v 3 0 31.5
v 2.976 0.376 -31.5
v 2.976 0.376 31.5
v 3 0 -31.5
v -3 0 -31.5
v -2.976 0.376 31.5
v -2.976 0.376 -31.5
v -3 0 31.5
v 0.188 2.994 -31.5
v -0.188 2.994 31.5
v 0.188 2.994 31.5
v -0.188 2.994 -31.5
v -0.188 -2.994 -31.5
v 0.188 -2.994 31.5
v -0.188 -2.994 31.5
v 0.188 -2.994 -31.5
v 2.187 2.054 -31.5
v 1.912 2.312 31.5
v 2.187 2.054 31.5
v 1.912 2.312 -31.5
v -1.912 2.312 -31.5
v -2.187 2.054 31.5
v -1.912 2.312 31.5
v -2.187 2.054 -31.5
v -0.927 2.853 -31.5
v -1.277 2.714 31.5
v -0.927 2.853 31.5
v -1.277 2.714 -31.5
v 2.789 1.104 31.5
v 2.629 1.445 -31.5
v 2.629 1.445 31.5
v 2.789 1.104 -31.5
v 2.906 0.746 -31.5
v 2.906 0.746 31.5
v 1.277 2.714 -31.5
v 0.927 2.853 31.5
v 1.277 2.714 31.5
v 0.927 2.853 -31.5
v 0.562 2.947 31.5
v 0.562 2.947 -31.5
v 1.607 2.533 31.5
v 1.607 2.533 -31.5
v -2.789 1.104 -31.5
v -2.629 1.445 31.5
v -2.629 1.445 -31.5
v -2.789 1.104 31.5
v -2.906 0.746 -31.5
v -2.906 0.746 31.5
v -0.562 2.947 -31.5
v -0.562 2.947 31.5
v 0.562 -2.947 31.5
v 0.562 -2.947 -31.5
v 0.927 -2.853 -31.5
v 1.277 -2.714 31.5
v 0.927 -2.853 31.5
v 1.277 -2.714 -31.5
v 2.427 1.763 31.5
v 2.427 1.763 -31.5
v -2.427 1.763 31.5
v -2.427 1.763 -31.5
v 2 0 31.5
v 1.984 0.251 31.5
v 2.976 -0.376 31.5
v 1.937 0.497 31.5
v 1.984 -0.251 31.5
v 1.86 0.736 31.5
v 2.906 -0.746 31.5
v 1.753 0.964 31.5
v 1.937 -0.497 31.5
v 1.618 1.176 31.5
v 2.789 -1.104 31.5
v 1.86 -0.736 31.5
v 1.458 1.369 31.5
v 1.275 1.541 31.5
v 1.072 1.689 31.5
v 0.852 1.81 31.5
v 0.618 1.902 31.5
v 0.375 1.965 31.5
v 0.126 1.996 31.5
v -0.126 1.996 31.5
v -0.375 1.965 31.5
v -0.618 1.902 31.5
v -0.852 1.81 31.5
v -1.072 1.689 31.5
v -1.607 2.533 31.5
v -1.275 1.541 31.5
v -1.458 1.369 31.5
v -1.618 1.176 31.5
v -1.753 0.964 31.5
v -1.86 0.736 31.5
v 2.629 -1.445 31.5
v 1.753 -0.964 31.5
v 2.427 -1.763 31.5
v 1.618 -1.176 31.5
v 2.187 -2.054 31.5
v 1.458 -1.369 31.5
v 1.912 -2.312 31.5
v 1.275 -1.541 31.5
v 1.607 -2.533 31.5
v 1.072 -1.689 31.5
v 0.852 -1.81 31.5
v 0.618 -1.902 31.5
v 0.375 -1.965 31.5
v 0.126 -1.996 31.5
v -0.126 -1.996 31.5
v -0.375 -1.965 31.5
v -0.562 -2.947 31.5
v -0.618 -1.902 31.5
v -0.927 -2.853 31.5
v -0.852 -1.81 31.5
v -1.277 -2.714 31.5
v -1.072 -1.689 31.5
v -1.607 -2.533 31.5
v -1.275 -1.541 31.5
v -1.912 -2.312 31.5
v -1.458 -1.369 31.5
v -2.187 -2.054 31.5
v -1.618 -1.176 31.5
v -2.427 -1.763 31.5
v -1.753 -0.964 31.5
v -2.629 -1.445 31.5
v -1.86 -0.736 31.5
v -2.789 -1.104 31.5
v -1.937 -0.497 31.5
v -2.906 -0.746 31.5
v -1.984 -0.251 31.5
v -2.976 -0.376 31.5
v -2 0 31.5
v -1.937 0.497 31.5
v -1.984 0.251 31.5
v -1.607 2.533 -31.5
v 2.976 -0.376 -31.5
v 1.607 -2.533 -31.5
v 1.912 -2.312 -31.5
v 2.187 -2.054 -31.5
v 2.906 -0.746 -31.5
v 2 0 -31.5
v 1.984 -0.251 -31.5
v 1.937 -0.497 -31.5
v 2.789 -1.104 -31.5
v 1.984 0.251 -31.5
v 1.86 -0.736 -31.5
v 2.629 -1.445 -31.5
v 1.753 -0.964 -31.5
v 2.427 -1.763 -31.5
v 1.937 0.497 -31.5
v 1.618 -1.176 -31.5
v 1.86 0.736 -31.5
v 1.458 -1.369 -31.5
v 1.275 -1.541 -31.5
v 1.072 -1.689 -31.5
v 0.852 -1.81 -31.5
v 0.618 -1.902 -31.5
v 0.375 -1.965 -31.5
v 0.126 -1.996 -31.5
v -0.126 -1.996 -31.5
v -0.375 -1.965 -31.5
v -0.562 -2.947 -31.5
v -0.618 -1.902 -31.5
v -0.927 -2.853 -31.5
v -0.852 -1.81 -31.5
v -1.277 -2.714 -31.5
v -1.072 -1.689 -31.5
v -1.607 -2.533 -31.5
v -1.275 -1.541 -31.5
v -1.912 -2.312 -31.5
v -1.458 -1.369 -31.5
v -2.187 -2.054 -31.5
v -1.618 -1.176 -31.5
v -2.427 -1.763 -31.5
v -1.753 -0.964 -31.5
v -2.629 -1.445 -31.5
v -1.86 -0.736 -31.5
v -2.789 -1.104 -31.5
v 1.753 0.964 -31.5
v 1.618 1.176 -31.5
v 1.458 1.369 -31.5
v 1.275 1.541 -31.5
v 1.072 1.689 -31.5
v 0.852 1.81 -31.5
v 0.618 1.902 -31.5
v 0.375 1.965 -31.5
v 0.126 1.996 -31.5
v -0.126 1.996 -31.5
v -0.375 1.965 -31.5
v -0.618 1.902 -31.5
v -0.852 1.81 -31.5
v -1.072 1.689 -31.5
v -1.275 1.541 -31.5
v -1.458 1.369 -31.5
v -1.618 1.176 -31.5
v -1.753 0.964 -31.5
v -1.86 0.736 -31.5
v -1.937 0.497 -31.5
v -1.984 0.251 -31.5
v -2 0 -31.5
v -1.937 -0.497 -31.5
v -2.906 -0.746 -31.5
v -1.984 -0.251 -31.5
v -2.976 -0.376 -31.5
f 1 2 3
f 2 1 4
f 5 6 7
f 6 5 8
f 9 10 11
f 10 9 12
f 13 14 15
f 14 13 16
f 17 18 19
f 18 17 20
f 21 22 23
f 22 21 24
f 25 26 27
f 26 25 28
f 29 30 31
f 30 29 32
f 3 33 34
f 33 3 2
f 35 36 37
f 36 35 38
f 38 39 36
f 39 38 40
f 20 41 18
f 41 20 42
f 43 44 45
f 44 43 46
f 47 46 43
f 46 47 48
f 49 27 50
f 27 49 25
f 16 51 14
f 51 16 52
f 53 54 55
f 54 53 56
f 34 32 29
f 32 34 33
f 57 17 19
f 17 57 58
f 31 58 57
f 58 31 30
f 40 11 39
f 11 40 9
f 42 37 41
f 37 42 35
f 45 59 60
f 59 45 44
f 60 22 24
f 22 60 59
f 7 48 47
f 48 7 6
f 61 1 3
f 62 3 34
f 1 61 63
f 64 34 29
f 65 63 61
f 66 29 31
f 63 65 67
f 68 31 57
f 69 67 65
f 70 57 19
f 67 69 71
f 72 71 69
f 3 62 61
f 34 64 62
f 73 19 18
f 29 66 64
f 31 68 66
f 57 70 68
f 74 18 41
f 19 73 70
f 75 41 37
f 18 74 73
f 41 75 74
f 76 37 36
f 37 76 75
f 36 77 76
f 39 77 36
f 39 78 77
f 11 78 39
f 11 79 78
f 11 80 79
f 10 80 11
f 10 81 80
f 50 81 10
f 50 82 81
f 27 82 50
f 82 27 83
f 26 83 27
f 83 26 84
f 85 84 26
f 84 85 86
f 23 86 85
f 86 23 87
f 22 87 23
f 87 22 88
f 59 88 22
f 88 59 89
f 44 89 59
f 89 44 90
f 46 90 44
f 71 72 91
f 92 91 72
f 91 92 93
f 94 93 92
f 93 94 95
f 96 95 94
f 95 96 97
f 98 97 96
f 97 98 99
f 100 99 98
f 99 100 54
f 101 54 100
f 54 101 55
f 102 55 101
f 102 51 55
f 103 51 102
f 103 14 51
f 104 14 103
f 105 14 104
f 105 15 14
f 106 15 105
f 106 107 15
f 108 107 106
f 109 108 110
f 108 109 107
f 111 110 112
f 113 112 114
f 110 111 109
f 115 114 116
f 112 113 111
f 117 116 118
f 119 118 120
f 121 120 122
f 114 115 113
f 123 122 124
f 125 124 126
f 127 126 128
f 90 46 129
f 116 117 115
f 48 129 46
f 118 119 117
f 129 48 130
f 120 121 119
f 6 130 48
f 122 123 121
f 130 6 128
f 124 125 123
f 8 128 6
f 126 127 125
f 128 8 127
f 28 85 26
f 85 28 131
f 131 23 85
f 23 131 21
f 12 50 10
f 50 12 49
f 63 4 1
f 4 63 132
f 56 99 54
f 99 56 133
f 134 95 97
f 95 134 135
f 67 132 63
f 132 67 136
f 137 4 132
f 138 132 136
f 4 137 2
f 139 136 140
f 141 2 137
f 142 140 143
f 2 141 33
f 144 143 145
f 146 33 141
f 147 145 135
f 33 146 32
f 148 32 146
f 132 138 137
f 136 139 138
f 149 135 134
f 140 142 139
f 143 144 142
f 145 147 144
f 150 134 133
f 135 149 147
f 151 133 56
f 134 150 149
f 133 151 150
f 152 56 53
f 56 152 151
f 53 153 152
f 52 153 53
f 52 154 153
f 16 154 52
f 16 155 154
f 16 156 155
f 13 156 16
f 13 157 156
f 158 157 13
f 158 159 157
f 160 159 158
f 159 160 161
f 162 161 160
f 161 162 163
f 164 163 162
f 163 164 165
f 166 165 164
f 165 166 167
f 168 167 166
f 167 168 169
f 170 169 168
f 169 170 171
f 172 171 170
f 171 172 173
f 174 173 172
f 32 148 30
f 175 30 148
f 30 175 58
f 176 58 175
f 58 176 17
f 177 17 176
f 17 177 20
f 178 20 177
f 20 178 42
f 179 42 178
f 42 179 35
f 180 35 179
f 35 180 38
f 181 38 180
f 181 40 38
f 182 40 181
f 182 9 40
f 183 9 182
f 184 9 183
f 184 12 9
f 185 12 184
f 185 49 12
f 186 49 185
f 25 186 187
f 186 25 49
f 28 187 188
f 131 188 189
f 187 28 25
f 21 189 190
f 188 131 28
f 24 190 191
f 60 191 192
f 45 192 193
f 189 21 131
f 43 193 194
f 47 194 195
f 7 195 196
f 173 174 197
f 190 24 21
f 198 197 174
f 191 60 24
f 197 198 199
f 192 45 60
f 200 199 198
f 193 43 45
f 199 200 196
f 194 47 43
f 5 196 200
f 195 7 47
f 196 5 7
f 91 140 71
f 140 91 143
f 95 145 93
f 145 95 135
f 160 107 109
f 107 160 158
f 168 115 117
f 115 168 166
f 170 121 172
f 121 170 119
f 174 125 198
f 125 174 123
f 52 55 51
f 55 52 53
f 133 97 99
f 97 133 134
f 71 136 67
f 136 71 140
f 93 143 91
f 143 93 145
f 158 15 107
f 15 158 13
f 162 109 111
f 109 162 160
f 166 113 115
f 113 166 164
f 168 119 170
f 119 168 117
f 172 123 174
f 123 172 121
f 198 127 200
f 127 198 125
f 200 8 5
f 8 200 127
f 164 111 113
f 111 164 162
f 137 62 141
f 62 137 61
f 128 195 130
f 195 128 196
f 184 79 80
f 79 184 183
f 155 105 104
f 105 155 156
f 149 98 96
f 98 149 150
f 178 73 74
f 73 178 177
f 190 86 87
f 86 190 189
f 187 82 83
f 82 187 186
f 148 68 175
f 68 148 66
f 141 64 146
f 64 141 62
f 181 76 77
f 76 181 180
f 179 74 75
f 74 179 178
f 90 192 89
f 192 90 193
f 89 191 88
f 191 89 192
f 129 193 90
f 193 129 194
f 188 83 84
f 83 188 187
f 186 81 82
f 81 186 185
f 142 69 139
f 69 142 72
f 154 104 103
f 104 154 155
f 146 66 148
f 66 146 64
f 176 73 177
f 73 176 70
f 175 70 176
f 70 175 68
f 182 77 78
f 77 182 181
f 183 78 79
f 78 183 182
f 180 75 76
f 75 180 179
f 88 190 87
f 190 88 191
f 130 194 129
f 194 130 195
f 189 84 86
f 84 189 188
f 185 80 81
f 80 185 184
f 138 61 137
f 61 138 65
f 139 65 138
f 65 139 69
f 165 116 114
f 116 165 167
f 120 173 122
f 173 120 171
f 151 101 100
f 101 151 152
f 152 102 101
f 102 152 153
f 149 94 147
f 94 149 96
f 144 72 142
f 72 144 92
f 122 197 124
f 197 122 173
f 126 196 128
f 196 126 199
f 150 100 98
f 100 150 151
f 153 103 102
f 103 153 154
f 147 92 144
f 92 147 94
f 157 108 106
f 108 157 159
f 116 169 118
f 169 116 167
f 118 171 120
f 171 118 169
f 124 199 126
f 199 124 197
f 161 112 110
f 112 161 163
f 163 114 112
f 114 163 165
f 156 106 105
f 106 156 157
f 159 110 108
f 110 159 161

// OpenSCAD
$fn = 50;


difference() {
	union() {
		translate(v = [0, 0, -31.5000000000]) {
			cylinder(h = 63, r = 3.0000000000);
		}
	}
	union() {
		translate(v = [0, 0, -100.0000000000]) {
			cylinder(h = 200, r = 2);
		}
	}
}
